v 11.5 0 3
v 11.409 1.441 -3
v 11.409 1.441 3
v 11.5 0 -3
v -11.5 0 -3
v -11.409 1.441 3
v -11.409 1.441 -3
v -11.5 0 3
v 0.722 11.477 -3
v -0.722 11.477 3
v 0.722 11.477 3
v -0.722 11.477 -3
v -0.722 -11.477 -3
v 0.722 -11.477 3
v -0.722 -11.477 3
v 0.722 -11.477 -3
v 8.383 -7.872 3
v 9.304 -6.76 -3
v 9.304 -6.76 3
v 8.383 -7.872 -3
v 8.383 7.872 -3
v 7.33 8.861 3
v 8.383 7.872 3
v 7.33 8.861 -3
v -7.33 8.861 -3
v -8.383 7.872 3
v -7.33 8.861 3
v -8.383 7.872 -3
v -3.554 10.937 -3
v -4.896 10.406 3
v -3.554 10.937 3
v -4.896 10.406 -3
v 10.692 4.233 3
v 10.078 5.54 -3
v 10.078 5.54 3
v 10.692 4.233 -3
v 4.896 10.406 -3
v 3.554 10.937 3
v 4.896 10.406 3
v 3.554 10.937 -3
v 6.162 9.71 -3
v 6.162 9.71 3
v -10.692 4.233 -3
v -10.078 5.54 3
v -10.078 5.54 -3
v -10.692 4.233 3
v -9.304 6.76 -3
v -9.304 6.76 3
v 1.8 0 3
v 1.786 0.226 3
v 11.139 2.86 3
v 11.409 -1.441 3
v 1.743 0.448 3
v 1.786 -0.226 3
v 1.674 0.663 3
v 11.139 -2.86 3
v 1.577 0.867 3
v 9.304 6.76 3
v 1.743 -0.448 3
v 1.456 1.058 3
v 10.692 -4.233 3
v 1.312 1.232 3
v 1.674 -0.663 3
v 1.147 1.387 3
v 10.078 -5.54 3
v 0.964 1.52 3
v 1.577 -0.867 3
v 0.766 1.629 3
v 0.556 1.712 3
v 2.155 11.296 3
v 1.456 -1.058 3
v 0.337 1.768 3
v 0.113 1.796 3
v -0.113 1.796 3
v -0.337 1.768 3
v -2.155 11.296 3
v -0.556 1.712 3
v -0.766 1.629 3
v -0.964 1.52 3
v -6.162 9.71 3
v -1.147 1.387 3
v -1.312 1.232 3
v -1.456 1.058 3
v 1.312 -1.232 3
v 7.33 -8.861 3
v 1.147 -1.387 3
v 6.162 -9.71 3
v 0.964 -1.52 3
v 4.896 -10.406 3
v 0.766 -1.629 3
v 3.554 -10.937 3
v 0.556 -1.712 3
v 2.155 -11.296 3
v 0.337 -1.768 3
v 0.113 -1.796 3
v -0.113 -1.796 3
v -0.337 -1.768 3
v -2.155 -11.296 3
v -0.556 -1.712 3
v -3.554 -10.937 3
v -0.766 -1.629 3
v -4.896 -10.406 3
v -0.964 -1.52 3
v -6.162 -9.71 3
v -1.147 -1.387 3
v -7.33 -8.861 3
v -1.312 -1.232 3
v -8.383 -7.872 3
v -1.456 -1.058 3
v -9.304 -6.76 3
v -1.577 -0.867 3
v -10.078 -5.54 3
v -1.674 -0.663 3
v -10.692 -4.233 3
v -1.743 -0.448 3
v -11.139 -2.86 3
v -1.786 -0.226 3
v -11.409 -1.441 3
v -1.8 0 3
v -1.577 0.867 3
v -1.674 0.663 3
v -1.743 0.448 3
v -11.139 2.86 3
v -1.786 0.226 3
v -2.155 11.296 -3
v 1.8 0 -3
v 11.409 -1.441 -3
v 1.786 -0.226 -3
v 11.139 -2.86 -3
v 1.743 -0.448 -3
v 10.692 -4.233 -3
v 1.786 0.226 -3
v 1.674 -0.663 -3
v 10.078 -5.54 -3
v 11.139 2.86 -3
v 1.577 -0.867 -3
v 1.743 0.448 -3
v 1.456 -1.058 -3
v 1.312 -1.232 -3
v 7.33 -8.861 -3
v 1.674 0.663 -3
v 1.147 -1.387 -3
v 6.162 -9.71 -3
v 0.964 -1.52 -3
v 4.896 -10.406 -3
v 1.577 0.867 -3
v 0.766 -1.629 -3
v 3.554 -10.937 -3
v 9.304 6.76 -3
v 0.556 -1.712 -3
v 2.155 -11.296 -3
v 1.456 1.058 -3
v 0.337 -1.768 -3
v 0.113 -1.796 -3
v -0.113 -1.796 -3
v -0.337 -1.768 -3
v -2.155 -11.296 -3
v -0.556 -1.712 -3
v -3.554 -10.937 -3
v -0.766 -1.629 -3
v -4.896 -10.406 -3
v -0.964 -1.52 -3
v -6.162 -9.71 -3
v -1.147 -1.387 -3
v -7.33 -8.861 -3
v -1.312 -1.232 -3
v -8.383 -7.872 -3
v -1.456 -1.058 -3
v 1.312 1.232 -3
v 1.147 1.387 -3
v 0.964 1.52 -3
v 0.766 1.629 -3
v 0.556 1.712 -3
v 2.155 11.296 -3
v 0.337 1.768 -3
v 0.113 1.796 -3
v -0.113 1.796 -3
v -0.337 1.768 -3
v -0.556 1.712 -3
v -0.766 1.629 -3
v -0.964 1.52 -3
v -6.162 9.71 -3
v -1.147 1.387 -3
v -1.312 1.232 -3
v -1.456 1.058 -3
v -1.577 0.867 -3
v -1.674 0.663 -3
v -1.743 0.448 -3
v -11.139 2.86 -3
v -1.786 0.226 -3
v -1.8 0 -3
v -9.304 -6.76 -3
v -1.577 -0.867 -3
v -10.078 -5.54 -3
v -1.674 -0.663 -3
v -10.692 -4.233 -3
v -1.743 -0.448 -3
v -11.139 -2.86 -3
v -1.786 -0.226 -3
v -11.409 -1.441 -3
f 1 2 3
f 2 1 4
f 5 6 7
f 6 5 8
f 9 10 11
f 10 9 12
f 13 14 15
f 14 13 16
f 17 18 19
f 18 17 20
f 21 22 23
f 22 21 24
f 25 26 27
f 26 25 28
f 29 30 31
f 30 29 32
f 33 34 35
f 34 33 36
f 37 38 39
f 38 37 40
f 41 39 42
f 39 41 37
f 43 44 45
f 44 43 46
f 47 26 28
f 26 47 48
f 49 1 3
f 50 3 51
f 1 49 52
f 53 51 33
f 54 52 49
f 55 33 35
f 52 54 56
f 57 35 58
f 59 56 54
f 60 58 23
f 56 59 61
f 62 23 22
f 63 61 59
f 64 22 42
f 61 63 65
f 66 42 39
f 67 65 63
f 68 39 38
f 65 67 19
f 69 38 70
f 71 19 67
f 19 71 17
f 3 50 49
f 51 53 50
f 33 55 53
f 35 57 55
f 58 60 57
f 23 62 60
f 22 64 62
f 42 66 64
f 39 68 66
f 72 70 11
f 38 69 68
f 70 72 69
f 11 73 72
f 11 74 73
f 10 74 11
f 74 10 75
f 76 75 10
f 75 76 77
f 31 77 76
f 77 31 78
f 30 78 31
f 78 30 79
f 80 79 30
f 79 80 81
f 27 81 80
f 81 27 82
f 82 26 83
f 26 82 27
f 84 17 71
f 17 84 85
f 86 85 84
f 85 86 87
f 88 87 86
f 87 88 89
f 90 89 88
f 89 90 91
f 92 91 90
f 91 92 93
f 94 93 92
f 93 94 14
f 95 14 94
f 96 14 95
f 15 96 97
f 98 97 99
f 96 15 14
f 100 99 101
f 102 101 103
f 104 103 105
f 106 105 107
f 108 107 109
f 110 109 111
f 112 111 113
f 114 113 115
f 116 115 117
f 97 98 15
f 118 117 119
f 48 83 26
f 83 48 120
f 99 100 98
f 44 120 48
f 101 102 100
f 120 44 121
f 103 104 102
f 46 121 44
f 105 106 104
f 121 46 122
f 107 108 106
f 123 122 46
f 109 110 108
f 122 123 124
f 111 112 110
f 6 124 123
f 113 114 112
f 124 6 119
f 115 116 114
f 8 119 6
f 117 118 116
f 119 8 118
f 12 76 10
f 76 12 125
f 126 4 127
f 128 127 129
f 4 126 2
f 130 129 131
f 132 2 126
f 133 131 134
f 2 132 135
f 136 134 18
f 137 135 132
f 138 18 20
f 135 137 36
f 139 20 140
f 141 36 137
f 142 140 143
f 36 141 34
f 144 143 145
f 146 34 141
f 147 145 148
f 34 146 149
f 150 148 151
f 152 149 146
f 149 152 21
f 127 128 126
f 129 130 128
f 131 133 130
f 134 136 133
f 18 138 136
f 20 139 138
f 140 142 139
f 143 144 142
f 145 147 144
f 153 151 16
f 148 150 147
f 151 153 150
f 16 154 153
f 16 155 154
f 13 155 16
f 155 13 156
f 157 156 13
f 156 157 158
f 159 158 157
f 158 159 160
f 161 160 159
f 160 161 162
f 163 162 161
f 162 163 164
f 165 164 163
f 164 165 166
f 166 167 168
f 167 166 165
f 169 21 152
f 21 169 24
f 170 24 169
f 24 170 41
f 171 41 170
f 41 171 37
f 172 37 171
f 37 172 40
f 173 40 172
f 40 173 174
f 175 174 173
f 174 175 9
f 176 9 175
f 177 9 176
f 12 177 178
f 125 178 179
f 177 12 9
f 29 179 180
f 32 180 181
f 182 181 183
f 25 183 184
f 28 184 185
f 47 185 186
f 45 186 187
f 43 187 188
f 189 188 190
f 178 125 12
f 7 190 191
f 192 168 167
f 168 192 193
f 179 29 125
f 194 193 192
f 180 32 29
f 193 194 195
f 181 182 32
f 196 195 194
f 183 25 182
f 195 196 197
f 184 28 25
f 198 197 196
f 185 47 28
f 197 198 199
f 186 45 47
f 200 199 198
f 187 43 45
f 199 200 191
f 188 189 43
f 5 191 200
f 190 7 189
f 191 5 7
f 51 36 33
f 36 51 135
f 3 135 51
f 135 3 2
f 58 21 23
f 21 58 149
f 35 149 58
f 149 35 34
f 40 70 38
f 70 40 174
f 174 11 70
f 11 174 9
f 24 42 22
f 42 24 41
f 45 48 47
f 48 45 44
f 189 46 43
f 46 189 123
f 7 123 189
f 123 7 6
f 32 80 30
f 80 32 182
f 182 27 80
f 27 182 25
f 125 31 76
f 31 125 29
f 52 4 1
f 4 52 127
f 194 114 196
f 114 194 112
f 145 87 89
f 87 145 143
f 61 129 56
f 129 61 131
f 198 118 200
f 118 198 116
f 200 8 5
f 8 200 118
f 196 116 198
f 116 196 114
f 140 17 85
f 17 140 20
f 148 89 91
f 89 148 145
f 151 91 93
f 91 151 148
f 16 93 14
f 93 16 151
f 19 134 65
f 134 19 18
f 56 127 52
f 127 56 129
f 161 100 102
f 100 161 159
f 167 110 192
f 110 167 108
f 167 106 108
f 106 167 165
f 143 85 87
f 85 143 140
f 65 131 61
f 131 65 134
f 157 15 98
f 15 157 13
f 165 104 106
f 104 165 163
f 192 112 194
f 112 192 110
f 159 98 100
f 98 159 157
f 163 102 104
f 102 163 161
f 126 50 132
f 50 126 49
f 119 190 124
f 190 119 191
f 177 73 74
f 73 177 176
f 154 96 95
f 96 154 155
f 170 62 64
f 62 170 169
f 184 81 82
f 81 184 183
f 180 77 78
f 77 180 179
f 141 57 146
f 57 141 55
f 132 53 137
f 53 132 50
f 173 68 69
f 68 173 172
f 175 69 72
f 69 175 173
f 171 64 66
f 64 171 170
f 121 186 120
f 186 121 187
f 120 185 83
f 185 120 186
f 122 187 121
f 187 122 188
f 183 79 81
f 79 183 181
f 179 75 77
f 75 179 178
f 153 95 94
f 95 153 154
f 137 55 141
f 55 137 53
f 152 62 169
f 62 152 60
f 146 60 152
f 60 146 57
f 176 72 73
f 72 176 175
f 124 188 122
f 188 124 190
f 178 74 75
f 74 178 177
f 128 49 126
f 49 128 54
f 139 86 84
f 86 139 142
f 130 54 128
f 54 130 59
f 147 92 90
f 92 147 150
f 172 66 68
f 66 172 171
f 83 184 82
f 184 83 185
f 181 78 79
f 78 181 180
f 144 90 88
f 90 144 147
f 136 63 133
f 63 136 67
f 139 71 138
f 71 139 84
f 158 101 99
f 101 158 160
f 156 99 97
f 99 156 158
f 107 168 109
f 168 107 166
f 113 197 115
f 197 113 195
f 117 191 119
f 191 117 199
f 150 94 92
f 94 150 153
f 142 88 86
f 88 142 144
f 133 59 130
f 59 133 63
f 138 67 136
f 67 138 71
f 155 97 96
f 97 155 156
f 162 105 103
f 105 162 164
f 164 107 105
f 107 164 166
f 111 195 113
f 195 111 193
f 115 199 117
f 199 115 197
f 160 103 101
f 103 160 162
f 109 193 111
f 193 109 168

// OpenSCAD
$fn = 50;


difference() {
	union() {
		translate(v = [0, 0, -3.0000000000]) {
			cylinder(h = 6, r = 11.5000000000);
		}
	}
	union() {
		translate(v = [0, 0, -100.0000000000]) {
			cylinder(h = 200, r = 1.8000000000);
		}
	}
}
